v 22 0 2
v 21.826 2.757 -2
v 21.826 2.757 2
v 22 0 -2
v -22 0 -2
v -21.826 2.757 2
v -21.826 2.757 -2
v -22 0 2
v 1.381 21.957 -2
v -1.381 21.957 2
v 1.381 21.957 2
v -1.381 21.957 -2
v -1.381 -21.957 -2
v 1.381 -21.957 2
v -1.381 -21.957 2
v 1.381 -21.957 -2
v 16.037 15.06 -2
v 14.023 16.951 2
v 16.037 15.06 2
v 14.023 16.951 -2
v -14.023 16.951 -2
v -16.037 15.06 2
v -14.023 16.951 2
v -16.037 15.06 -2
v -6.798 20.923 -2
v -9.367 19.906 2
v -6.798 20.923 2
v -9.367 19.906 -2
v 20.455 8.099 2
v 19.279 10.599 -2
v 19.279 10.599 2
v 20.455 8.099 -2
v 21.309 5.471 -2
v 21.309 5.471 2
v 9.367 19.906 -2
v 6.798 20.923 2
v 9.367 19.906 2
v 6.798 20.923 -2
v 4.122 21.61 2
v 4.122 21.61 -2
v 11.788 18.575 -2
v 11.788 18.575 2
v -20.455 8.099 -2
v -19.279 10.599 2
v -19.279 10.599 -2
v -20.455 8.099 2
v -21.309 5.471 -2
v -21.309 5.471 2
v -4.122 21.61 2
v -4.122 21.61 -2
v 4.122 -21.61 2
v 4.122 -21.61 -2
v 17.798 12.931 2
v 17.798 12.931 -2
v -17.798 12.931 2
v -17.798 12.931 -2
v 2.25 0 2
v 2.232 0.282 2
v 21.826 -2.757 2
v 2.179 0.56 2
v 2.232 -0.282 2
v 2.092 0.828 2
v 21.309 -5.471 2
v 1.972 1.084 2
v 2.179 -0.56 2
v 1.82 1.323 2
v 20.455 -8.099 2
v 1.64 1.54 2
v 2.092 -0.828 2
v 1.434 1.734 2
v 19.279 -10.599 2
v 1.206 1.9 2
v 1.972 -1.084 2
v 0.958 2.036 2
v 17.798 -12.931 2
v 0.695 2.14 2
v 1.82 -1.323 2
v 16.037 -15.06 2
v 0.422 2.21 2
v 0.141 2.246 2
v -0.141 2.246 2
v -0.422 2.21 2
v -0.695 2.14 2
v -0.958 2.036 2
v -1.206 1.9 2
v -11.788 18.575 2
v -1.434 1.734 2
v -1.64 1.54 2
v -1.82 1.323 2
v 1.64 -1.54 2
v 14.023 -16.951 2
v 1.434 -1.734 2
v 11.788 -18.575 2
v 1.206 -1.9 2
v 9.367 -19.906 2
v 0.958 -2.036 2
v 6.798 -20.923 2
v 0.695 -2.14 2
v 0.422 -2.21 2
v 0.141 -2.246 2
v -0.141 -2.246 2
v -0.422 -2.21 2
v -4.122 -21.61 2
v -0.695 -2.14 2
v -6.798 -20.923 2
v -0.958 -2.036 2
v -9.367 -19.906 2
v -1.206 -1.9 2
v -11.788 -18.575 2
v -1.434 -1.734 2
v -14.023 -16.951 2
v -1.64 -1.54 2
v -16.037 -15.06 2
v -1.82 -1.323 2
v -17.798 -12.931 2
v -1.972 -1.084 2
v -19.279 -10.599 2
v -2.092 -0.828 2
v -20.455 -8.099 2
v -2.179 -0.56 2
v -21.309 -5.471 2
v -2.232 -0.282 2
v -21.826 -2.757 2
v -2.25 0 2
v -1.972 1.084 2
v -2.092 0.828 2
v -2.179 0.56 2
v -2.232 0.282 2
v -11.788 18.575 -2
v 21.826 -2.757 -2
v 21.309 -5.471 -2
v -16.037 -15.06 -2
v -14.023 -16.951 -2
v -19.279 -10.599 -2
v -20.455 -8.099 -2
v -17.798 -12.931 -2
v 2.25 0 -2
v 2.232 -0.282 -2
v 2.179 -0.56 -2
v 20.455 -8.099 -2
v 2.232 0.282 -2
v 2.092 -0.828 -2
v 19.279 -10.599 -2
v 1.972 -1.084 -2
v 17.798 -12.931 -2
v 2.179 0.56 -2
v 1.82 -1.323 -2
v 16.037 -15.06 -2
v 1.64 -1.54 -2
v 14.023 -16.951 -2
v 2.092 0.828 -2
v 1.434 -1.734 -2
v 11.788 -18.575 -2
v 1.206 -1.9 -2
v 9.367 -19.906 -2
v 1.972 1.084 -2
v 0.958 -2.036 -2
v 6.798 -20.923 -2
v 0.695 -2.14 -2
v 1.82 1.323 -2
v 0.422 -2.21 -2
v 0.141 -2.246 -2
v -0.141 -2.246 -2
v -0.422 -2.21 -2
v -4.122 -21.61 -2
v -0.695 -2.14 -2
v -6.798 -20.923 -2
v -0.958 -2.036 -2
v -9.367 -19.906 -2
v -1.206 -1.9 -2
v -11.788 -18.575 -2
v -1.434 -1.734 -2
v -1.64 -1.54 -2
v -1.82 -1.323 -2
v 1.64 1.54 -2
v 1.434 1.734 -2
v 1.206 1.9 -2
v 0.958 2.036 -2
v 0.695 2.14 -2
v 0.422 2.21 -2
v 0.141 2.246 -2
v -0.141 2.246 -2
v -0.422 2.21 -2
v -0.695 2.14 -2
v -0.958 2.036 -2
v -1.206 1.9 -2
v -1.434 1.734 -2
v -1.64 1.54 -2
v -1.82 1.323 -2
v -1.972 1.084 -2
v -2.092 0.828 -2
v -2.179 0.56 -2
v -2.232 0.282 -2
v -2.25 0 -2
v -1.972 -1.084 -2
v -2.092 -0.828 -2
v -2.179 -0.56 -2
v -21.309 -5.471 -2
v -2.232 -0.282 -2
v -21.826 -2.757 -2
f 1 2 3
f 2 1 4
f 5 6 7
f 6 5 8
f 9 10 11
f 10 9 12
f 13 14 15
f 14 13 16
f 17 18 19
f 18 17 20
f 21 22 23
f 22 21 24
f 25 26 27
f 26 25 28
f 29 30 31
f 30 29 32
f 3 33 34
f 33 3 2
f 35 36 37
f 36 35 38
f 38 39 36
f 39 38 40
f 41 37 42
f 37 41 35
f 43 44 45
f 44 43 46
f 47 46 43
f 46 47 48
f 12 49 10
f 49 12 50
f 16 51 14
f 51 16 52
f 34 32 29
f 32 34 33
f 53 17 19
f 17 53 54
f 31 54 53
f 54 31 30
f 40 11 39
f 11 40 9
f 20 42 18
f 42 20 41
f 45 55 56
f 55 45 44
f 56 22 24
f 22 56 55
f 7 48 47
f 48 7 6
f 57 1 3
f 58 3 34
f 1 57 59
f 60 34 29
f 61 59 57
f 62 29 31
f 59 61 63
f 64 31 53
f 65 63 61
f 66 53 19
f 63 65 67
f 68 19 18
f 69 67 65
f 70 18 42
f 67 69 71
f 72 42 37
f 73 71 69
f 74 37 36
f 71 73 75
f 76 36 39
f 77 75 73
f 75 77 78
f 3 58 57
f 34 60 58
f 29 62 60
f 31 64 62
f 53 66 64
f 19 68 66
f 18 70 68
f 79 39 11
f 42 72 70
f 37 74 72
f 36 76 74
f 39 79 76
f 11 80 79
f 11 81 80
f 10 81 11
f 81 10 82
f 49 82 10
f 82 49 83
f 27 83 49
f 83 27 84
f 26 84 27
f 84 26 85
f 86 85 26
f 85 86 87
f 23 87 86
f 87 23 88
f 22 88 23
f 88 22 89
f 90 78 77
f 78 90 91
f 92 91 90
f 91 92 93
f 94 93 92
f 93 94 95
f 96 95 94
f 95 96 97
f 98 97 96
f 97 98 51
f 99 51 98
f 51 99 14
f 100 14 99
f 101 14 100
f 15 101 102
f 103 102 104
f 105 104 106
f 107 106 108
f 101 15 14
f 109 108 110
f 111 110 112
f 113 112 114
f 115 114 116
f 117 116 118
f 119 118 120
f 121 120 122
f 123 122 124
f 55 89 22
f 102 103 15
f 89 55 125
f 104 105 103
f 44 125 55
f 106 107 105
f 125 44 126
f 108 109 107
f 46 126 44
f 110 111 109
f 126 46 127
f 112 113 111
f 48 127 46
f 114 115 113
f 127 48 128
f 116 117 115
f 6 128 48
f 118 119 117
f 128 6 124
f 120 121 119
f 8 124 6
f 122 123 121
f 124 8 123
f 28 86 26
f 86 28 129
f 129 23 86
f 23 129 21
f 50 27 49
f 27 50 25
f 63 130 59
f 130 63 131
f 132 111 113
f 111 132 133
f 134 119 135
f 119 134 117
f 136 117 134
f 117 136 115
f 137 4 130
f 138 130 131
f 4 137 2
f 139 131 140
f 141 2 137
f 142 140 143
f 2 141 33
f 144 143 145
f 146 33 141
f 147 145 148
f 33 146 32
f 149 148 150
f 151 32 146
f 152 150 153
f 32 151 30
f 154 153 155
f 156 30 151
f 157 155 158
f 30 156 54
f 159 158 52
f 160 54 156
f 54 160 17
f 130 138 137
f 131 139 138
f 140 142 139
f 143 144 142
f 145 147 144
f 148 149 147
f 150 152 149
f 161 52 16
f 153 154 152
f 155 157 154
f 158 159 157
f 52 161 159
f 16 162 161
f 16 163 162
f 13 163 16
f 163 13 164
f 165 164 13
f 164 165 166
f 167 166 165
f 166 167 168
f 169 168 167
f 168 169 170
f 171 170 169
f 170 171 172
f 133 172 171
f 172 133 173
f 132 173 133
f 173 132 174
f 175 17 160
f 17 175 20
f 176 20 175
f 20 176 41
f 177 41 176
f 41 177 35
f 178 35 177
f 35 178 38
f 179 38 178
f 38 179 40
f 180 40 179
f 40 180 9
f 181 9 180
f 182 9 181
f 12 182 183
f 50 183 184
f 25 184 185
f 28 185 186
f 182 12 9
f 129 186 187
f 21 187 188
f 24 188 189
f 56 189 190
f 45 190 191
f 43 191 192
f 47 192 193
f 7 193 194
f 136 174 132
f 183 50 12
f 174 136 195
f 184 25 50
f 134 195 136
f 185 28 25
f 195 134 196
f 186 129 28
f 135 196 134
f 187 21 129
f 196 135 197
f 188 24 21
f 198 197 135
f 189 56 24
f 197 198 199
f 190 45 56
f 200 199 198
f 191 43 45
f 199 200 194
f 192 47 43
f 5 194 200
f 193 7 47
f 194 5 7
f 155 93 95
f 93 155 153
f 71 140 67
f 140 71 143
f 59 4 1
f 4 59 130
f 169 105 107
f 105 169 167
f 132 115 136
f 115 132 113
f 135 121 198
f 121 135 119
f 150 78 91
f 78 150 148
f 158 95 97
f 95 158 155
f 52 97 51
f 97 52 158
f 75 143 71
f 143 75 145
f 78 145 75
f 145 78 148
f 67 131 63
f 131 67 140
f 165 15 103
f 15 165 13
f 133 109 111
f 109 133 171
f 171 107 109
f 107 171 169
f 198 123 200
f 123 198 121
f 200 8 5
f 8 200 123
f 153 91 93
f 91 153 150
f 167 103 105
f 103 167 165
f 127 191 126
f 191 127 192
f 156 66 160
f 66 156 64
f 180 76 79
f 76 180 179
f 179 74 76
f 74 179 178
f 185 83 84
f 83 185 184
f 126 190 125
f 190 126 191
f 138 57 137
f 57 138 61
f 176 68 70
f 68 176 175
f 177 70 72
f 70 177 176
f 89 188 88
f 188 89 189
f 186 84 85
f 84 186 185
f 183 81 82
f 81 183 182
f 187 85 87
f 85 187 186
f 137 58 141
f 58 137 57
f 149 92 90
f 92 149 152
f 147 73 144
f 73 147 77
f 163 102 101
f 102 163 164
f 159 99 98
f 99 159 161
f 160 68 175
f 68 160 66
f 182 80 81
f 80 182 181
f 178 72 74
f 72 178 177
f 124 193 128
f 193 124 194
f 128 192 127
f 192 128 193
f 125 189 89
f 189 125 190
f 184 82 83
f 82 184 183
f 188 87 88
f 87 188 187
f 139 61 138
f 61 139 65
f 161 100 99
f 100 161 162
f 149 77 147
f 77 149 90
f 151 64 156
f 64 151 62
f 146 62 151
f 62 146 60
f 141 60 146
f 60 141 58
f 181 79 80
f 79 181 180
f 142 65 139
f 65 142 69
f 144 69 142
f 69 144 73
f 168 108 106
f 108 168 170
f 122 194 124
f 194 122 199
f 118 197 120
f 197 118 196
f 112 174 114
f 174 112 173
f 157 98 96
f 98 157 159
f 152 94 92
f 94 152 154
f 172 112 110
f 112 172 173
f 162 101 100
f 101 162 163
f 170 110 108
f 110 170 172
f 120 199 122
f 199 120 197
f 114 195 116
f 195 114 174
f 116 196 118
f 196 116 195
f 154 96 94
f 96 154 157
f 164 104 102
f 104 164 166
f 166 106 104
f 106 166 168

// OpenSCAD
$fn = 50;


difference() {
	union() {
		translate(v = [0, 0, -2.0000000000]) {
			cylinder(h = 4, r = 22.0000000000);
		}
	}
	union() {
		translate(v = [0, 0, -100.0000000000]) {
			cylinder(h = 200, r = 2.2500000000);
		}
	}
}
